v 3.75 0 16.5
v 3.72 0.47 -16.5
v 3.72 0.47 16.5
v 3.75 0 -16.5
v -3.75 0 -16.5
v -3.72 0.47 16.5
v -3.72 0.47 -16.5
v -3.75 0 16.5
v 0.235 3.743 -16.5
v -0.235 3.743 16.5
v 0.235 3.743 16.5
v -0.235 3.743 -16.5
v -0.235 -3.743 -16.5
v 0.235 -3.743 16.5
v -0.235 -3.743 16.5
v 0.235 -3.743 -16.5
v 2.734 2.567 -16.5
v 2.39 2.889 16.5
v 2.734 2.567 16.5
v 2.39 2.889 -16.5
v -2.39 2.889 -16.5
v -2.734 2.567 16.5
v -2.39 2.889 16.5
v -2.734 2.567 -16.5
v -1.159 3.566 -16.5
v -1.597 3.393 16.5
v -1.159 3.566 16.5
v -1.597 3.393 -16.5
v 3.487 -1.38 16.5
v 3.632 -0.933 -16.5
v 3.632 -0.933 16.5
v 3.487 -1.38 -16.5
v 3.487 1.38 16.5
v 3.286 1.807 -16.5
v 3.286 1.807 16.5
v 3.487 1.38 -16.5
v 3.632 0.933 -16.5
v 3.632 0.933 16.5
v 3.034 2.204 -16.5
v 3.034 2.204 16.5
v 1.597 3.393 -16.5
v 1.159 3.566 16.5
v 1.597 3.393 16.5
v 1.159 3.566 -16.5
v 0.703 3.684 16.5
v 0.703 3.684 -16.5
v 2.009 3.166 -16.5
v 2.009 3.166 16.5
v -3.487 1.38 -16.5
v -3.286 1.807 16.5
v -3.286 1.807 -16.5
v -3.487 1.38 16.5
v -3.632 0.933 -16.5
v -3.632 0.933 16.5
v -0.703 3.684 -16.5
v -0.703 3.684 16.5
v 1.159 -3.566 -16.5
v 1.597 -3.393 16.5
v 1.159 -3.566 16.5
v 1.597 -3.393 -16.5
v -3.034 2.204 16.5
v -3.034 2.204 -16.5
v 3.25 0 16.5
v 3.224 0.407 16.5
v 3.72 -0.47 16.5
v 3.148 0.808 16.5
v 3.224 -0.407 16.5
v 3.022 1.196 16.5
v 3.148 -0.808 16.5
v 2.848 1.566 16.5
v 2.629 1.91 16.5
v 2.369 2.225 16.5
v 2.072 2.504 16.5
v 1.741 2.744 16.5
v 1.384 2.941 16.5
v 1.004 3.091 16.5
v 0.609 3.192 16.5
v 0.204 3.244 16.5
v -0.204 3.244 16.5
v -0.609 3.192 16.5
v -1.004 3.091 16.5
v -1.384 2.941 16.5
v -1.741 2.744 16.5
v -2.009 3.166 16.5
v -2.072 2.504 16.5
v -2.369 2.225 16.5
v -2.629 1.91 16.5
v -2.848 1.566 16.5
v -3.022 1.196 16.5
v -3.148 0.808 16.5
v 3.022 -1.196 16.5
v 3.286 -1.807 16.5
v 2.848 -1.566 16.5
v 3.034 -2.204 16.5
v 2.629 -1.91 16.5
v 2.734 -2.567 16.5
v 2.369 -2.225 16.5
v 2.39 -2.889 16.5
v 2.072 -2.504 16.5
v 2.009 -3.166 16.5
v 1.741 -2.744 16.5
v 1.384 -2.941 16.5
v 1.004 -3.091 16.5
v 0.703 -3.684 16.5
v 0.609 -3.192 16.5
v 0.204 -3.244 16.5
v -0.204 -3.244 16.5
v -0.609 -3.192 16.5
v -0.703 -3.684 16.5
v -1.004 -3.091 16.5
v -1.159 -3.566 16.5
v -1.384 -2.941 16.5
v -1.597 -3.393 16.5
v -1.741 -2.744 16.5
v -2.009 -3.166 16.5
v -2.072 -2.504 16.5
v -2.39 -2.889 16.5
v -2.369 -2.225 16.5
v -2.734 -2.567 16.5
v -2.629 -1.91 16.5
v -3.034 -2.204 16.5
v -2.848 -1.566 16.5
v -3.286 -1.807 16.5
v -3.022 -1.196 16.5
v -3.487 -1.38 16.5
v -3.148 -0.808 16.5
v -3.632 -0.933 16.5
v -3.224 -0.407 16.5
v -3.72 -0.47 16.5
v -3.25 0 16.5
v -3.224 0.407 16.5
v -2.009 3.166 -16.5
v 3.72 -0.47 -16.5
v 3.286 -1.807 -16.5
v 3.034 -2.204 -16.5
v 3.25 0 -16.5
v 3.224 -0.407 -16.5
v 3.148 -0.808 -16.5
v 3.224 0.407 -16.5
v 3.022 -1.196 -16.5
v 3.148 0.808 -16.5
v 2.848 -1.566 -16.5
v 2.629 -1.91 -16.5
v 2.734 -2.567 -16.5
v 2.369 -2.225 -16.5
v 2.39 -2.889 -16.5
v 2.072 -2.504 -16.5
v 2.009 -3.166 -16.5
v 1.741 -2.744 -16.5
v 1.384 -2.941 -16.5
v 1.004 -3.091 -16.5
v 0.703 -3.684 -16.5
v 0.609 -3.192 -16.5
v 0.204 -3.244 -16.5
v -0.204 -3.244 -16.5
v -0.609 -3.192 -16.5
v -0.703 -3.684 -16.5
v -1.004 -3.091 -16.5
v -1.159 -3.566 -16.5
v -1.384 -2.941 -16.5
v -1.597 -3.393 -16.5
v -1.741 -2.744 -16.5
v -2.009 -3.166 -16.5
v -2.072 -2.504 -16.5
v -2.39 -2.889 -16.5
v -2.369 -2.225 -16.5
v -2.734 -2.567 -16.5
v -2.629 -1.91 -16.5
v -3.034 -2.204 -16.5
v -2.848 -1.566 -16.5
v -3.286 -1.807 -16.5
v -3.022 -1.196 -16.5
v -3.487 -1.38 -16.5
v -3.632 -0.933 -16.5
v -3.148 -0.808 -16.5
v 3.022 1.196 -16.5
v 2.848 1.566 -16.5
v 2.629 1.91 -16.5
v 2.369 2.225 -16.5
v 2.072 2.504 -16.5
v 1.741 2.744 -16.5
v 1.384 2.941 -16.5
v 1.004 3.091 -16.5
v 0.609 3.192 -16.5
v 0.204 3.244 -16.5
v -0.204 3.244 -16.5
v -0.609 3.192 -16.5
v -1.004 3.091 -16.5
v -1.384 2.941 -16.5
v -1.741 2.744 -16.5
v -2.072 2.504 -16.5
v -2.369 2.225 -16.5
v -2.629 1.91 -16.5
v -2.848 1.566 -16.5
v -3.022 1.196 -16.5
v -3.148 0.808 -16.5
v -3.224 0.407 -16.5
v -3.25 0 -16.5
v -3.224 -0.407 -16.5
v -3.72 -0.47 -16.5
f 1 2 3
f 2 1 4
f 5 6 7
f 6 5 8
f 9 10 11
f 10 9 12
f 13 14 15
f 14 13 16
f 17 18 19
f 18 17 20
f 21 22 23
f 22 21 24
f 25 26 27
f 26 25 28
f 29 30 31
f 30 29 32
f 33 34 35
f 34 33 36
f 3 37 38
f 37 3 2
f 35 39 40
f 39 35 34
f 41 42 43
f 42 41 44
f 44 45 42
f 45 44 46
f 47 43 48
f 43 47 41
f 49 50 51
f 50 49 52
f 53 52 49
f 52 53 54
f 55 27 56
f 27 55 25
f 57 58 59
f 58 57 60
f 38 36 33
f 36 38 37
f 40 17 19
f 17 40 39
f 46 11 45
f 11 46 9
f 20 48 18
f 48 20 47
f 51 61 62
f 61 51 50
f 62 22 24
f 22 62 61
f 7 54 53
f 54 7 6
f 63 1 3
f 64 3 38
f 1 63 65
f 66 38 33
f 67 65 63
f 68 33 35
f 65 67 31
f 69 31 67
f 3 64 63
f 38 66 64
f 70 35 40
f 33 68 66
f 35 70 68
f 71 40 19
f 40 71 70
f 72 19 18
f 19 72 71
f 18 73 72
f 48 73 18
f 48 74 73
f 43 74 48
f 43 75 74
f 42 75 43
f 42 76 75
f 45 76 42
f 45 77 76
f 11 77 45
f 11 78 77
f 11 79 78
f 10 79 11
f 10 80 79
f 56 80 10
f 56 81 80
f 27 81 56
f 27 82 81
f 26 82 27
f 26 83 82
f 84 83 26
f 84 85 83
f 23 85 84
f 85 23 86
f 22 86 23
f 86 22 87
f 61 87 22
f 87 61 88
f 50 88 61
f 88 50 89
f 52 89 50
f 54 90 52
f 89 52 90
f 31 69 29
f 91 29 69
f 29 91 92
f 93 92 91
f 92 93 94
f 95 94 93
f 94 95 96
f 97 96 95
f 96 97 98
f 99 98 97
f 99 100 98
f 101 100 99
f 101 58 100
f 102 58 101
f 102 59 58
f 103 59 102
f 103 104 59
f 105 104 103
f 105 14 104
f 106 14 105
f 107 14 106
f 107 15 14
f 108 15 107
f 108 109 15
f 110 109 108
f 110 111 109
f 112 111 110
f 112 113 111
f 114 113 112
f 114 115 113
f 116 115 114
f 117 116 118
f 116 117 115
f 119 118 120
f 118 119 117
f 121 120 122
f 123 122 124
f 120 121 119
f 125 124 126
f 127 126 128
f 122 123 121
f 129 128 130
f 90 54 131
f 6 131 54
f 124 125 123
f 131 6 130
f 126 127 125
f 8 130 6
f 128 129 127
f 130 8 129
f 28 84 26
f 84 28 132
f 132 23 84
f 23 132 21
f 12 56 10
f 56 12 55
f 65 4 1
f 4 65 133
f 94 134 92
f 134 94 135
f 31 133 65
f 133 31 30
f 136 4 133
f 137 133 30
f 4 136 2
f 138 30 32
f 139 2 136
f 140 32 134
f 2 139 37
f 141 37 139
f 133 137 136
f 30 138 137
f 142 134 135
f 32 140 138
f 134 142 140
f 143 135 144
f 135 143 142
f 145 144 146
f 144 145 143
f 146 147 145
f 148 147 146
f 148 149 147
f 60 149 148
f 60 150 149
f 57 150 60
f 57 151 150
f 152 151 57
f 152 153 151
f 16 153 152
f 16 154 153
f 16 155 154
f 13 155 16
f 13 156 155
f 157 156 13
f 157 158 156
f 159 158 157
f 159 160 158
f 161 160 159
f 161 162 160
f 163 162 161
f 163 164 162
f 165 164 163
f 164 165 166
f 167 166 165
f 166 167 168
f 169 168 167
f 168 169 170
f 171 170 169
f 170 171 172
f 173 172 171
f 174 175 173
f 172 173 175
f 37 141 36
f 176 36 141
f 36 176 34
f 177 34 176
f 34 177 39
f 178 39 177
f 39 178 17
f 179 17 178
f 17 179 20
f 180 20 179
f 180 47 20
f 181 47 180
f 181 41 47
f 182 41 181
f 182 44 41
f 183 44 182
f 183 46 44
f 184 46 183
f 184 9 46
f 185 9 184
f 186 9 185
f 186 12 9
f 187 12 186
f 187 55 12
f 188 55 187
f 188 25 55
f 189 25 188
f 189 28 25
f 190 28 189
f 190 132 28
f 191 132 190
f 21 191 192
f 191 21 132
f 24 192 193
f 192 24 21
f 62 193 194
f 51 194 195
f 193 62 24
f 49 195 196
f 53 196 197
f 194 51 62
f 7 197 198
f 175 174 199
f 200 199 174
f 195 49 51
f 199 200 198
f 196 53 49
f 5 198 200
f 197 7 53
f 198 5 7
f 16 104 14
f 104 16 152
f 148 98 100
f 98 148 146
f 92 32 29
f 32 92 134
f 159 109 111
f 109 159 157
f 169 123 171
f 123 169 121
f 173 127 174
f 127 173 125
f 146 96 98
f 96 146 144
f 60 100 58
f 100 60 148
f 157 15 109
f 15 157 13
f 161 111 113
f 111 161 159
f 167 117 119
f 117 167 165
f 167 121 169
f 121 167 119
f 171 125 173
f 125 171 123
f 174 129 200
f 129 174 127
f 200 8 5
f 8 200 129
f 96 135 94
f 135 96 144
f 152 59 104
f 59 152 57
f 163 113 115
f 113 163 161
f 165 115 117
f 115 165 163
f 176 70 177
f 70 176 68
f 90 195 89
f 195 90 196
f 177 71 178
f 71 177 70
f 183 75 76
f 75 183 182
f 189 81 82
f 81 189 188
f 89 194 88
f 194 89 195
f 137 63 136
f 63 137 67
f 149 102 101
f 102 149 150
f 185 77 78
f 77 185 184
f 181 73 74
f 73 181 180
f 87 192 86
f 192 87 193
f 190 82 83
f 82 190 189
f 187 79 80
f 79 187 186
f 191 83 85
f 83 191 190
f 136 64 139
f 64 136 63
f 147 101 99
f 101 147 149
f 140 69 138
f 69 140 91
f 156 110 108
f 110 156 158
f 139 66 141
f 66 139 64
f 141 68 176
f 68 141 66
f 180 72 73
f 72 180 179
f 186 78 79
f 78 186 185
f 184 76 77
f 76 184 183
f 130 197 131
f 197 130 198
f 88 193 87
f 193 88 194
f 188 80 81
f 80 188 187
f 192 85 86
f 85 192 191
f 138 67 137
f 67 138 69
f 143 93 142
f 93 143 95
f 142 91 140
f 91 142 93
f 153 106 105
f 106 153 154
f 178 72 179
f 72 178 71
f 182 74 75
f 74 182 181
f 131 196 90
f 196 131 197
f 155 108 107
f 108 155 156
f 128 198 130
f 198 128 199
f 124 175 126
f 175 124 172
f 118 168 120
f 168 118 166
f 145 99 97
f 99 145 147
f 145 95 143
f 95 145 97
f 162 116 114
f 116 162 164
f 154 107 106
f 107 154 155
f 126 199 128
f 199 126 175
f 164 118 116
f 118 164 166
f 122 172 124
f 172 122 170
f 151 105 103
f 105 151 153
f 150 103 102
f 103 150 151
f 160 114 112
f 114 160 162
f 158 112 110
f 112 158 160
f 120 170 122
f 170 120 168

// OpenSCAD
$fn = 50;


difference() {
	union() {
		translate(v = [0, 0, -16.5000000000]) {
			cylinder(h = 33, r = 3.7500000000);
		}
	}
	union() {
		translate(v = [0, 0, -100.0000000000]) {
			cylinder(h = 200, r = 3.2500000000);
		}
	}
}
